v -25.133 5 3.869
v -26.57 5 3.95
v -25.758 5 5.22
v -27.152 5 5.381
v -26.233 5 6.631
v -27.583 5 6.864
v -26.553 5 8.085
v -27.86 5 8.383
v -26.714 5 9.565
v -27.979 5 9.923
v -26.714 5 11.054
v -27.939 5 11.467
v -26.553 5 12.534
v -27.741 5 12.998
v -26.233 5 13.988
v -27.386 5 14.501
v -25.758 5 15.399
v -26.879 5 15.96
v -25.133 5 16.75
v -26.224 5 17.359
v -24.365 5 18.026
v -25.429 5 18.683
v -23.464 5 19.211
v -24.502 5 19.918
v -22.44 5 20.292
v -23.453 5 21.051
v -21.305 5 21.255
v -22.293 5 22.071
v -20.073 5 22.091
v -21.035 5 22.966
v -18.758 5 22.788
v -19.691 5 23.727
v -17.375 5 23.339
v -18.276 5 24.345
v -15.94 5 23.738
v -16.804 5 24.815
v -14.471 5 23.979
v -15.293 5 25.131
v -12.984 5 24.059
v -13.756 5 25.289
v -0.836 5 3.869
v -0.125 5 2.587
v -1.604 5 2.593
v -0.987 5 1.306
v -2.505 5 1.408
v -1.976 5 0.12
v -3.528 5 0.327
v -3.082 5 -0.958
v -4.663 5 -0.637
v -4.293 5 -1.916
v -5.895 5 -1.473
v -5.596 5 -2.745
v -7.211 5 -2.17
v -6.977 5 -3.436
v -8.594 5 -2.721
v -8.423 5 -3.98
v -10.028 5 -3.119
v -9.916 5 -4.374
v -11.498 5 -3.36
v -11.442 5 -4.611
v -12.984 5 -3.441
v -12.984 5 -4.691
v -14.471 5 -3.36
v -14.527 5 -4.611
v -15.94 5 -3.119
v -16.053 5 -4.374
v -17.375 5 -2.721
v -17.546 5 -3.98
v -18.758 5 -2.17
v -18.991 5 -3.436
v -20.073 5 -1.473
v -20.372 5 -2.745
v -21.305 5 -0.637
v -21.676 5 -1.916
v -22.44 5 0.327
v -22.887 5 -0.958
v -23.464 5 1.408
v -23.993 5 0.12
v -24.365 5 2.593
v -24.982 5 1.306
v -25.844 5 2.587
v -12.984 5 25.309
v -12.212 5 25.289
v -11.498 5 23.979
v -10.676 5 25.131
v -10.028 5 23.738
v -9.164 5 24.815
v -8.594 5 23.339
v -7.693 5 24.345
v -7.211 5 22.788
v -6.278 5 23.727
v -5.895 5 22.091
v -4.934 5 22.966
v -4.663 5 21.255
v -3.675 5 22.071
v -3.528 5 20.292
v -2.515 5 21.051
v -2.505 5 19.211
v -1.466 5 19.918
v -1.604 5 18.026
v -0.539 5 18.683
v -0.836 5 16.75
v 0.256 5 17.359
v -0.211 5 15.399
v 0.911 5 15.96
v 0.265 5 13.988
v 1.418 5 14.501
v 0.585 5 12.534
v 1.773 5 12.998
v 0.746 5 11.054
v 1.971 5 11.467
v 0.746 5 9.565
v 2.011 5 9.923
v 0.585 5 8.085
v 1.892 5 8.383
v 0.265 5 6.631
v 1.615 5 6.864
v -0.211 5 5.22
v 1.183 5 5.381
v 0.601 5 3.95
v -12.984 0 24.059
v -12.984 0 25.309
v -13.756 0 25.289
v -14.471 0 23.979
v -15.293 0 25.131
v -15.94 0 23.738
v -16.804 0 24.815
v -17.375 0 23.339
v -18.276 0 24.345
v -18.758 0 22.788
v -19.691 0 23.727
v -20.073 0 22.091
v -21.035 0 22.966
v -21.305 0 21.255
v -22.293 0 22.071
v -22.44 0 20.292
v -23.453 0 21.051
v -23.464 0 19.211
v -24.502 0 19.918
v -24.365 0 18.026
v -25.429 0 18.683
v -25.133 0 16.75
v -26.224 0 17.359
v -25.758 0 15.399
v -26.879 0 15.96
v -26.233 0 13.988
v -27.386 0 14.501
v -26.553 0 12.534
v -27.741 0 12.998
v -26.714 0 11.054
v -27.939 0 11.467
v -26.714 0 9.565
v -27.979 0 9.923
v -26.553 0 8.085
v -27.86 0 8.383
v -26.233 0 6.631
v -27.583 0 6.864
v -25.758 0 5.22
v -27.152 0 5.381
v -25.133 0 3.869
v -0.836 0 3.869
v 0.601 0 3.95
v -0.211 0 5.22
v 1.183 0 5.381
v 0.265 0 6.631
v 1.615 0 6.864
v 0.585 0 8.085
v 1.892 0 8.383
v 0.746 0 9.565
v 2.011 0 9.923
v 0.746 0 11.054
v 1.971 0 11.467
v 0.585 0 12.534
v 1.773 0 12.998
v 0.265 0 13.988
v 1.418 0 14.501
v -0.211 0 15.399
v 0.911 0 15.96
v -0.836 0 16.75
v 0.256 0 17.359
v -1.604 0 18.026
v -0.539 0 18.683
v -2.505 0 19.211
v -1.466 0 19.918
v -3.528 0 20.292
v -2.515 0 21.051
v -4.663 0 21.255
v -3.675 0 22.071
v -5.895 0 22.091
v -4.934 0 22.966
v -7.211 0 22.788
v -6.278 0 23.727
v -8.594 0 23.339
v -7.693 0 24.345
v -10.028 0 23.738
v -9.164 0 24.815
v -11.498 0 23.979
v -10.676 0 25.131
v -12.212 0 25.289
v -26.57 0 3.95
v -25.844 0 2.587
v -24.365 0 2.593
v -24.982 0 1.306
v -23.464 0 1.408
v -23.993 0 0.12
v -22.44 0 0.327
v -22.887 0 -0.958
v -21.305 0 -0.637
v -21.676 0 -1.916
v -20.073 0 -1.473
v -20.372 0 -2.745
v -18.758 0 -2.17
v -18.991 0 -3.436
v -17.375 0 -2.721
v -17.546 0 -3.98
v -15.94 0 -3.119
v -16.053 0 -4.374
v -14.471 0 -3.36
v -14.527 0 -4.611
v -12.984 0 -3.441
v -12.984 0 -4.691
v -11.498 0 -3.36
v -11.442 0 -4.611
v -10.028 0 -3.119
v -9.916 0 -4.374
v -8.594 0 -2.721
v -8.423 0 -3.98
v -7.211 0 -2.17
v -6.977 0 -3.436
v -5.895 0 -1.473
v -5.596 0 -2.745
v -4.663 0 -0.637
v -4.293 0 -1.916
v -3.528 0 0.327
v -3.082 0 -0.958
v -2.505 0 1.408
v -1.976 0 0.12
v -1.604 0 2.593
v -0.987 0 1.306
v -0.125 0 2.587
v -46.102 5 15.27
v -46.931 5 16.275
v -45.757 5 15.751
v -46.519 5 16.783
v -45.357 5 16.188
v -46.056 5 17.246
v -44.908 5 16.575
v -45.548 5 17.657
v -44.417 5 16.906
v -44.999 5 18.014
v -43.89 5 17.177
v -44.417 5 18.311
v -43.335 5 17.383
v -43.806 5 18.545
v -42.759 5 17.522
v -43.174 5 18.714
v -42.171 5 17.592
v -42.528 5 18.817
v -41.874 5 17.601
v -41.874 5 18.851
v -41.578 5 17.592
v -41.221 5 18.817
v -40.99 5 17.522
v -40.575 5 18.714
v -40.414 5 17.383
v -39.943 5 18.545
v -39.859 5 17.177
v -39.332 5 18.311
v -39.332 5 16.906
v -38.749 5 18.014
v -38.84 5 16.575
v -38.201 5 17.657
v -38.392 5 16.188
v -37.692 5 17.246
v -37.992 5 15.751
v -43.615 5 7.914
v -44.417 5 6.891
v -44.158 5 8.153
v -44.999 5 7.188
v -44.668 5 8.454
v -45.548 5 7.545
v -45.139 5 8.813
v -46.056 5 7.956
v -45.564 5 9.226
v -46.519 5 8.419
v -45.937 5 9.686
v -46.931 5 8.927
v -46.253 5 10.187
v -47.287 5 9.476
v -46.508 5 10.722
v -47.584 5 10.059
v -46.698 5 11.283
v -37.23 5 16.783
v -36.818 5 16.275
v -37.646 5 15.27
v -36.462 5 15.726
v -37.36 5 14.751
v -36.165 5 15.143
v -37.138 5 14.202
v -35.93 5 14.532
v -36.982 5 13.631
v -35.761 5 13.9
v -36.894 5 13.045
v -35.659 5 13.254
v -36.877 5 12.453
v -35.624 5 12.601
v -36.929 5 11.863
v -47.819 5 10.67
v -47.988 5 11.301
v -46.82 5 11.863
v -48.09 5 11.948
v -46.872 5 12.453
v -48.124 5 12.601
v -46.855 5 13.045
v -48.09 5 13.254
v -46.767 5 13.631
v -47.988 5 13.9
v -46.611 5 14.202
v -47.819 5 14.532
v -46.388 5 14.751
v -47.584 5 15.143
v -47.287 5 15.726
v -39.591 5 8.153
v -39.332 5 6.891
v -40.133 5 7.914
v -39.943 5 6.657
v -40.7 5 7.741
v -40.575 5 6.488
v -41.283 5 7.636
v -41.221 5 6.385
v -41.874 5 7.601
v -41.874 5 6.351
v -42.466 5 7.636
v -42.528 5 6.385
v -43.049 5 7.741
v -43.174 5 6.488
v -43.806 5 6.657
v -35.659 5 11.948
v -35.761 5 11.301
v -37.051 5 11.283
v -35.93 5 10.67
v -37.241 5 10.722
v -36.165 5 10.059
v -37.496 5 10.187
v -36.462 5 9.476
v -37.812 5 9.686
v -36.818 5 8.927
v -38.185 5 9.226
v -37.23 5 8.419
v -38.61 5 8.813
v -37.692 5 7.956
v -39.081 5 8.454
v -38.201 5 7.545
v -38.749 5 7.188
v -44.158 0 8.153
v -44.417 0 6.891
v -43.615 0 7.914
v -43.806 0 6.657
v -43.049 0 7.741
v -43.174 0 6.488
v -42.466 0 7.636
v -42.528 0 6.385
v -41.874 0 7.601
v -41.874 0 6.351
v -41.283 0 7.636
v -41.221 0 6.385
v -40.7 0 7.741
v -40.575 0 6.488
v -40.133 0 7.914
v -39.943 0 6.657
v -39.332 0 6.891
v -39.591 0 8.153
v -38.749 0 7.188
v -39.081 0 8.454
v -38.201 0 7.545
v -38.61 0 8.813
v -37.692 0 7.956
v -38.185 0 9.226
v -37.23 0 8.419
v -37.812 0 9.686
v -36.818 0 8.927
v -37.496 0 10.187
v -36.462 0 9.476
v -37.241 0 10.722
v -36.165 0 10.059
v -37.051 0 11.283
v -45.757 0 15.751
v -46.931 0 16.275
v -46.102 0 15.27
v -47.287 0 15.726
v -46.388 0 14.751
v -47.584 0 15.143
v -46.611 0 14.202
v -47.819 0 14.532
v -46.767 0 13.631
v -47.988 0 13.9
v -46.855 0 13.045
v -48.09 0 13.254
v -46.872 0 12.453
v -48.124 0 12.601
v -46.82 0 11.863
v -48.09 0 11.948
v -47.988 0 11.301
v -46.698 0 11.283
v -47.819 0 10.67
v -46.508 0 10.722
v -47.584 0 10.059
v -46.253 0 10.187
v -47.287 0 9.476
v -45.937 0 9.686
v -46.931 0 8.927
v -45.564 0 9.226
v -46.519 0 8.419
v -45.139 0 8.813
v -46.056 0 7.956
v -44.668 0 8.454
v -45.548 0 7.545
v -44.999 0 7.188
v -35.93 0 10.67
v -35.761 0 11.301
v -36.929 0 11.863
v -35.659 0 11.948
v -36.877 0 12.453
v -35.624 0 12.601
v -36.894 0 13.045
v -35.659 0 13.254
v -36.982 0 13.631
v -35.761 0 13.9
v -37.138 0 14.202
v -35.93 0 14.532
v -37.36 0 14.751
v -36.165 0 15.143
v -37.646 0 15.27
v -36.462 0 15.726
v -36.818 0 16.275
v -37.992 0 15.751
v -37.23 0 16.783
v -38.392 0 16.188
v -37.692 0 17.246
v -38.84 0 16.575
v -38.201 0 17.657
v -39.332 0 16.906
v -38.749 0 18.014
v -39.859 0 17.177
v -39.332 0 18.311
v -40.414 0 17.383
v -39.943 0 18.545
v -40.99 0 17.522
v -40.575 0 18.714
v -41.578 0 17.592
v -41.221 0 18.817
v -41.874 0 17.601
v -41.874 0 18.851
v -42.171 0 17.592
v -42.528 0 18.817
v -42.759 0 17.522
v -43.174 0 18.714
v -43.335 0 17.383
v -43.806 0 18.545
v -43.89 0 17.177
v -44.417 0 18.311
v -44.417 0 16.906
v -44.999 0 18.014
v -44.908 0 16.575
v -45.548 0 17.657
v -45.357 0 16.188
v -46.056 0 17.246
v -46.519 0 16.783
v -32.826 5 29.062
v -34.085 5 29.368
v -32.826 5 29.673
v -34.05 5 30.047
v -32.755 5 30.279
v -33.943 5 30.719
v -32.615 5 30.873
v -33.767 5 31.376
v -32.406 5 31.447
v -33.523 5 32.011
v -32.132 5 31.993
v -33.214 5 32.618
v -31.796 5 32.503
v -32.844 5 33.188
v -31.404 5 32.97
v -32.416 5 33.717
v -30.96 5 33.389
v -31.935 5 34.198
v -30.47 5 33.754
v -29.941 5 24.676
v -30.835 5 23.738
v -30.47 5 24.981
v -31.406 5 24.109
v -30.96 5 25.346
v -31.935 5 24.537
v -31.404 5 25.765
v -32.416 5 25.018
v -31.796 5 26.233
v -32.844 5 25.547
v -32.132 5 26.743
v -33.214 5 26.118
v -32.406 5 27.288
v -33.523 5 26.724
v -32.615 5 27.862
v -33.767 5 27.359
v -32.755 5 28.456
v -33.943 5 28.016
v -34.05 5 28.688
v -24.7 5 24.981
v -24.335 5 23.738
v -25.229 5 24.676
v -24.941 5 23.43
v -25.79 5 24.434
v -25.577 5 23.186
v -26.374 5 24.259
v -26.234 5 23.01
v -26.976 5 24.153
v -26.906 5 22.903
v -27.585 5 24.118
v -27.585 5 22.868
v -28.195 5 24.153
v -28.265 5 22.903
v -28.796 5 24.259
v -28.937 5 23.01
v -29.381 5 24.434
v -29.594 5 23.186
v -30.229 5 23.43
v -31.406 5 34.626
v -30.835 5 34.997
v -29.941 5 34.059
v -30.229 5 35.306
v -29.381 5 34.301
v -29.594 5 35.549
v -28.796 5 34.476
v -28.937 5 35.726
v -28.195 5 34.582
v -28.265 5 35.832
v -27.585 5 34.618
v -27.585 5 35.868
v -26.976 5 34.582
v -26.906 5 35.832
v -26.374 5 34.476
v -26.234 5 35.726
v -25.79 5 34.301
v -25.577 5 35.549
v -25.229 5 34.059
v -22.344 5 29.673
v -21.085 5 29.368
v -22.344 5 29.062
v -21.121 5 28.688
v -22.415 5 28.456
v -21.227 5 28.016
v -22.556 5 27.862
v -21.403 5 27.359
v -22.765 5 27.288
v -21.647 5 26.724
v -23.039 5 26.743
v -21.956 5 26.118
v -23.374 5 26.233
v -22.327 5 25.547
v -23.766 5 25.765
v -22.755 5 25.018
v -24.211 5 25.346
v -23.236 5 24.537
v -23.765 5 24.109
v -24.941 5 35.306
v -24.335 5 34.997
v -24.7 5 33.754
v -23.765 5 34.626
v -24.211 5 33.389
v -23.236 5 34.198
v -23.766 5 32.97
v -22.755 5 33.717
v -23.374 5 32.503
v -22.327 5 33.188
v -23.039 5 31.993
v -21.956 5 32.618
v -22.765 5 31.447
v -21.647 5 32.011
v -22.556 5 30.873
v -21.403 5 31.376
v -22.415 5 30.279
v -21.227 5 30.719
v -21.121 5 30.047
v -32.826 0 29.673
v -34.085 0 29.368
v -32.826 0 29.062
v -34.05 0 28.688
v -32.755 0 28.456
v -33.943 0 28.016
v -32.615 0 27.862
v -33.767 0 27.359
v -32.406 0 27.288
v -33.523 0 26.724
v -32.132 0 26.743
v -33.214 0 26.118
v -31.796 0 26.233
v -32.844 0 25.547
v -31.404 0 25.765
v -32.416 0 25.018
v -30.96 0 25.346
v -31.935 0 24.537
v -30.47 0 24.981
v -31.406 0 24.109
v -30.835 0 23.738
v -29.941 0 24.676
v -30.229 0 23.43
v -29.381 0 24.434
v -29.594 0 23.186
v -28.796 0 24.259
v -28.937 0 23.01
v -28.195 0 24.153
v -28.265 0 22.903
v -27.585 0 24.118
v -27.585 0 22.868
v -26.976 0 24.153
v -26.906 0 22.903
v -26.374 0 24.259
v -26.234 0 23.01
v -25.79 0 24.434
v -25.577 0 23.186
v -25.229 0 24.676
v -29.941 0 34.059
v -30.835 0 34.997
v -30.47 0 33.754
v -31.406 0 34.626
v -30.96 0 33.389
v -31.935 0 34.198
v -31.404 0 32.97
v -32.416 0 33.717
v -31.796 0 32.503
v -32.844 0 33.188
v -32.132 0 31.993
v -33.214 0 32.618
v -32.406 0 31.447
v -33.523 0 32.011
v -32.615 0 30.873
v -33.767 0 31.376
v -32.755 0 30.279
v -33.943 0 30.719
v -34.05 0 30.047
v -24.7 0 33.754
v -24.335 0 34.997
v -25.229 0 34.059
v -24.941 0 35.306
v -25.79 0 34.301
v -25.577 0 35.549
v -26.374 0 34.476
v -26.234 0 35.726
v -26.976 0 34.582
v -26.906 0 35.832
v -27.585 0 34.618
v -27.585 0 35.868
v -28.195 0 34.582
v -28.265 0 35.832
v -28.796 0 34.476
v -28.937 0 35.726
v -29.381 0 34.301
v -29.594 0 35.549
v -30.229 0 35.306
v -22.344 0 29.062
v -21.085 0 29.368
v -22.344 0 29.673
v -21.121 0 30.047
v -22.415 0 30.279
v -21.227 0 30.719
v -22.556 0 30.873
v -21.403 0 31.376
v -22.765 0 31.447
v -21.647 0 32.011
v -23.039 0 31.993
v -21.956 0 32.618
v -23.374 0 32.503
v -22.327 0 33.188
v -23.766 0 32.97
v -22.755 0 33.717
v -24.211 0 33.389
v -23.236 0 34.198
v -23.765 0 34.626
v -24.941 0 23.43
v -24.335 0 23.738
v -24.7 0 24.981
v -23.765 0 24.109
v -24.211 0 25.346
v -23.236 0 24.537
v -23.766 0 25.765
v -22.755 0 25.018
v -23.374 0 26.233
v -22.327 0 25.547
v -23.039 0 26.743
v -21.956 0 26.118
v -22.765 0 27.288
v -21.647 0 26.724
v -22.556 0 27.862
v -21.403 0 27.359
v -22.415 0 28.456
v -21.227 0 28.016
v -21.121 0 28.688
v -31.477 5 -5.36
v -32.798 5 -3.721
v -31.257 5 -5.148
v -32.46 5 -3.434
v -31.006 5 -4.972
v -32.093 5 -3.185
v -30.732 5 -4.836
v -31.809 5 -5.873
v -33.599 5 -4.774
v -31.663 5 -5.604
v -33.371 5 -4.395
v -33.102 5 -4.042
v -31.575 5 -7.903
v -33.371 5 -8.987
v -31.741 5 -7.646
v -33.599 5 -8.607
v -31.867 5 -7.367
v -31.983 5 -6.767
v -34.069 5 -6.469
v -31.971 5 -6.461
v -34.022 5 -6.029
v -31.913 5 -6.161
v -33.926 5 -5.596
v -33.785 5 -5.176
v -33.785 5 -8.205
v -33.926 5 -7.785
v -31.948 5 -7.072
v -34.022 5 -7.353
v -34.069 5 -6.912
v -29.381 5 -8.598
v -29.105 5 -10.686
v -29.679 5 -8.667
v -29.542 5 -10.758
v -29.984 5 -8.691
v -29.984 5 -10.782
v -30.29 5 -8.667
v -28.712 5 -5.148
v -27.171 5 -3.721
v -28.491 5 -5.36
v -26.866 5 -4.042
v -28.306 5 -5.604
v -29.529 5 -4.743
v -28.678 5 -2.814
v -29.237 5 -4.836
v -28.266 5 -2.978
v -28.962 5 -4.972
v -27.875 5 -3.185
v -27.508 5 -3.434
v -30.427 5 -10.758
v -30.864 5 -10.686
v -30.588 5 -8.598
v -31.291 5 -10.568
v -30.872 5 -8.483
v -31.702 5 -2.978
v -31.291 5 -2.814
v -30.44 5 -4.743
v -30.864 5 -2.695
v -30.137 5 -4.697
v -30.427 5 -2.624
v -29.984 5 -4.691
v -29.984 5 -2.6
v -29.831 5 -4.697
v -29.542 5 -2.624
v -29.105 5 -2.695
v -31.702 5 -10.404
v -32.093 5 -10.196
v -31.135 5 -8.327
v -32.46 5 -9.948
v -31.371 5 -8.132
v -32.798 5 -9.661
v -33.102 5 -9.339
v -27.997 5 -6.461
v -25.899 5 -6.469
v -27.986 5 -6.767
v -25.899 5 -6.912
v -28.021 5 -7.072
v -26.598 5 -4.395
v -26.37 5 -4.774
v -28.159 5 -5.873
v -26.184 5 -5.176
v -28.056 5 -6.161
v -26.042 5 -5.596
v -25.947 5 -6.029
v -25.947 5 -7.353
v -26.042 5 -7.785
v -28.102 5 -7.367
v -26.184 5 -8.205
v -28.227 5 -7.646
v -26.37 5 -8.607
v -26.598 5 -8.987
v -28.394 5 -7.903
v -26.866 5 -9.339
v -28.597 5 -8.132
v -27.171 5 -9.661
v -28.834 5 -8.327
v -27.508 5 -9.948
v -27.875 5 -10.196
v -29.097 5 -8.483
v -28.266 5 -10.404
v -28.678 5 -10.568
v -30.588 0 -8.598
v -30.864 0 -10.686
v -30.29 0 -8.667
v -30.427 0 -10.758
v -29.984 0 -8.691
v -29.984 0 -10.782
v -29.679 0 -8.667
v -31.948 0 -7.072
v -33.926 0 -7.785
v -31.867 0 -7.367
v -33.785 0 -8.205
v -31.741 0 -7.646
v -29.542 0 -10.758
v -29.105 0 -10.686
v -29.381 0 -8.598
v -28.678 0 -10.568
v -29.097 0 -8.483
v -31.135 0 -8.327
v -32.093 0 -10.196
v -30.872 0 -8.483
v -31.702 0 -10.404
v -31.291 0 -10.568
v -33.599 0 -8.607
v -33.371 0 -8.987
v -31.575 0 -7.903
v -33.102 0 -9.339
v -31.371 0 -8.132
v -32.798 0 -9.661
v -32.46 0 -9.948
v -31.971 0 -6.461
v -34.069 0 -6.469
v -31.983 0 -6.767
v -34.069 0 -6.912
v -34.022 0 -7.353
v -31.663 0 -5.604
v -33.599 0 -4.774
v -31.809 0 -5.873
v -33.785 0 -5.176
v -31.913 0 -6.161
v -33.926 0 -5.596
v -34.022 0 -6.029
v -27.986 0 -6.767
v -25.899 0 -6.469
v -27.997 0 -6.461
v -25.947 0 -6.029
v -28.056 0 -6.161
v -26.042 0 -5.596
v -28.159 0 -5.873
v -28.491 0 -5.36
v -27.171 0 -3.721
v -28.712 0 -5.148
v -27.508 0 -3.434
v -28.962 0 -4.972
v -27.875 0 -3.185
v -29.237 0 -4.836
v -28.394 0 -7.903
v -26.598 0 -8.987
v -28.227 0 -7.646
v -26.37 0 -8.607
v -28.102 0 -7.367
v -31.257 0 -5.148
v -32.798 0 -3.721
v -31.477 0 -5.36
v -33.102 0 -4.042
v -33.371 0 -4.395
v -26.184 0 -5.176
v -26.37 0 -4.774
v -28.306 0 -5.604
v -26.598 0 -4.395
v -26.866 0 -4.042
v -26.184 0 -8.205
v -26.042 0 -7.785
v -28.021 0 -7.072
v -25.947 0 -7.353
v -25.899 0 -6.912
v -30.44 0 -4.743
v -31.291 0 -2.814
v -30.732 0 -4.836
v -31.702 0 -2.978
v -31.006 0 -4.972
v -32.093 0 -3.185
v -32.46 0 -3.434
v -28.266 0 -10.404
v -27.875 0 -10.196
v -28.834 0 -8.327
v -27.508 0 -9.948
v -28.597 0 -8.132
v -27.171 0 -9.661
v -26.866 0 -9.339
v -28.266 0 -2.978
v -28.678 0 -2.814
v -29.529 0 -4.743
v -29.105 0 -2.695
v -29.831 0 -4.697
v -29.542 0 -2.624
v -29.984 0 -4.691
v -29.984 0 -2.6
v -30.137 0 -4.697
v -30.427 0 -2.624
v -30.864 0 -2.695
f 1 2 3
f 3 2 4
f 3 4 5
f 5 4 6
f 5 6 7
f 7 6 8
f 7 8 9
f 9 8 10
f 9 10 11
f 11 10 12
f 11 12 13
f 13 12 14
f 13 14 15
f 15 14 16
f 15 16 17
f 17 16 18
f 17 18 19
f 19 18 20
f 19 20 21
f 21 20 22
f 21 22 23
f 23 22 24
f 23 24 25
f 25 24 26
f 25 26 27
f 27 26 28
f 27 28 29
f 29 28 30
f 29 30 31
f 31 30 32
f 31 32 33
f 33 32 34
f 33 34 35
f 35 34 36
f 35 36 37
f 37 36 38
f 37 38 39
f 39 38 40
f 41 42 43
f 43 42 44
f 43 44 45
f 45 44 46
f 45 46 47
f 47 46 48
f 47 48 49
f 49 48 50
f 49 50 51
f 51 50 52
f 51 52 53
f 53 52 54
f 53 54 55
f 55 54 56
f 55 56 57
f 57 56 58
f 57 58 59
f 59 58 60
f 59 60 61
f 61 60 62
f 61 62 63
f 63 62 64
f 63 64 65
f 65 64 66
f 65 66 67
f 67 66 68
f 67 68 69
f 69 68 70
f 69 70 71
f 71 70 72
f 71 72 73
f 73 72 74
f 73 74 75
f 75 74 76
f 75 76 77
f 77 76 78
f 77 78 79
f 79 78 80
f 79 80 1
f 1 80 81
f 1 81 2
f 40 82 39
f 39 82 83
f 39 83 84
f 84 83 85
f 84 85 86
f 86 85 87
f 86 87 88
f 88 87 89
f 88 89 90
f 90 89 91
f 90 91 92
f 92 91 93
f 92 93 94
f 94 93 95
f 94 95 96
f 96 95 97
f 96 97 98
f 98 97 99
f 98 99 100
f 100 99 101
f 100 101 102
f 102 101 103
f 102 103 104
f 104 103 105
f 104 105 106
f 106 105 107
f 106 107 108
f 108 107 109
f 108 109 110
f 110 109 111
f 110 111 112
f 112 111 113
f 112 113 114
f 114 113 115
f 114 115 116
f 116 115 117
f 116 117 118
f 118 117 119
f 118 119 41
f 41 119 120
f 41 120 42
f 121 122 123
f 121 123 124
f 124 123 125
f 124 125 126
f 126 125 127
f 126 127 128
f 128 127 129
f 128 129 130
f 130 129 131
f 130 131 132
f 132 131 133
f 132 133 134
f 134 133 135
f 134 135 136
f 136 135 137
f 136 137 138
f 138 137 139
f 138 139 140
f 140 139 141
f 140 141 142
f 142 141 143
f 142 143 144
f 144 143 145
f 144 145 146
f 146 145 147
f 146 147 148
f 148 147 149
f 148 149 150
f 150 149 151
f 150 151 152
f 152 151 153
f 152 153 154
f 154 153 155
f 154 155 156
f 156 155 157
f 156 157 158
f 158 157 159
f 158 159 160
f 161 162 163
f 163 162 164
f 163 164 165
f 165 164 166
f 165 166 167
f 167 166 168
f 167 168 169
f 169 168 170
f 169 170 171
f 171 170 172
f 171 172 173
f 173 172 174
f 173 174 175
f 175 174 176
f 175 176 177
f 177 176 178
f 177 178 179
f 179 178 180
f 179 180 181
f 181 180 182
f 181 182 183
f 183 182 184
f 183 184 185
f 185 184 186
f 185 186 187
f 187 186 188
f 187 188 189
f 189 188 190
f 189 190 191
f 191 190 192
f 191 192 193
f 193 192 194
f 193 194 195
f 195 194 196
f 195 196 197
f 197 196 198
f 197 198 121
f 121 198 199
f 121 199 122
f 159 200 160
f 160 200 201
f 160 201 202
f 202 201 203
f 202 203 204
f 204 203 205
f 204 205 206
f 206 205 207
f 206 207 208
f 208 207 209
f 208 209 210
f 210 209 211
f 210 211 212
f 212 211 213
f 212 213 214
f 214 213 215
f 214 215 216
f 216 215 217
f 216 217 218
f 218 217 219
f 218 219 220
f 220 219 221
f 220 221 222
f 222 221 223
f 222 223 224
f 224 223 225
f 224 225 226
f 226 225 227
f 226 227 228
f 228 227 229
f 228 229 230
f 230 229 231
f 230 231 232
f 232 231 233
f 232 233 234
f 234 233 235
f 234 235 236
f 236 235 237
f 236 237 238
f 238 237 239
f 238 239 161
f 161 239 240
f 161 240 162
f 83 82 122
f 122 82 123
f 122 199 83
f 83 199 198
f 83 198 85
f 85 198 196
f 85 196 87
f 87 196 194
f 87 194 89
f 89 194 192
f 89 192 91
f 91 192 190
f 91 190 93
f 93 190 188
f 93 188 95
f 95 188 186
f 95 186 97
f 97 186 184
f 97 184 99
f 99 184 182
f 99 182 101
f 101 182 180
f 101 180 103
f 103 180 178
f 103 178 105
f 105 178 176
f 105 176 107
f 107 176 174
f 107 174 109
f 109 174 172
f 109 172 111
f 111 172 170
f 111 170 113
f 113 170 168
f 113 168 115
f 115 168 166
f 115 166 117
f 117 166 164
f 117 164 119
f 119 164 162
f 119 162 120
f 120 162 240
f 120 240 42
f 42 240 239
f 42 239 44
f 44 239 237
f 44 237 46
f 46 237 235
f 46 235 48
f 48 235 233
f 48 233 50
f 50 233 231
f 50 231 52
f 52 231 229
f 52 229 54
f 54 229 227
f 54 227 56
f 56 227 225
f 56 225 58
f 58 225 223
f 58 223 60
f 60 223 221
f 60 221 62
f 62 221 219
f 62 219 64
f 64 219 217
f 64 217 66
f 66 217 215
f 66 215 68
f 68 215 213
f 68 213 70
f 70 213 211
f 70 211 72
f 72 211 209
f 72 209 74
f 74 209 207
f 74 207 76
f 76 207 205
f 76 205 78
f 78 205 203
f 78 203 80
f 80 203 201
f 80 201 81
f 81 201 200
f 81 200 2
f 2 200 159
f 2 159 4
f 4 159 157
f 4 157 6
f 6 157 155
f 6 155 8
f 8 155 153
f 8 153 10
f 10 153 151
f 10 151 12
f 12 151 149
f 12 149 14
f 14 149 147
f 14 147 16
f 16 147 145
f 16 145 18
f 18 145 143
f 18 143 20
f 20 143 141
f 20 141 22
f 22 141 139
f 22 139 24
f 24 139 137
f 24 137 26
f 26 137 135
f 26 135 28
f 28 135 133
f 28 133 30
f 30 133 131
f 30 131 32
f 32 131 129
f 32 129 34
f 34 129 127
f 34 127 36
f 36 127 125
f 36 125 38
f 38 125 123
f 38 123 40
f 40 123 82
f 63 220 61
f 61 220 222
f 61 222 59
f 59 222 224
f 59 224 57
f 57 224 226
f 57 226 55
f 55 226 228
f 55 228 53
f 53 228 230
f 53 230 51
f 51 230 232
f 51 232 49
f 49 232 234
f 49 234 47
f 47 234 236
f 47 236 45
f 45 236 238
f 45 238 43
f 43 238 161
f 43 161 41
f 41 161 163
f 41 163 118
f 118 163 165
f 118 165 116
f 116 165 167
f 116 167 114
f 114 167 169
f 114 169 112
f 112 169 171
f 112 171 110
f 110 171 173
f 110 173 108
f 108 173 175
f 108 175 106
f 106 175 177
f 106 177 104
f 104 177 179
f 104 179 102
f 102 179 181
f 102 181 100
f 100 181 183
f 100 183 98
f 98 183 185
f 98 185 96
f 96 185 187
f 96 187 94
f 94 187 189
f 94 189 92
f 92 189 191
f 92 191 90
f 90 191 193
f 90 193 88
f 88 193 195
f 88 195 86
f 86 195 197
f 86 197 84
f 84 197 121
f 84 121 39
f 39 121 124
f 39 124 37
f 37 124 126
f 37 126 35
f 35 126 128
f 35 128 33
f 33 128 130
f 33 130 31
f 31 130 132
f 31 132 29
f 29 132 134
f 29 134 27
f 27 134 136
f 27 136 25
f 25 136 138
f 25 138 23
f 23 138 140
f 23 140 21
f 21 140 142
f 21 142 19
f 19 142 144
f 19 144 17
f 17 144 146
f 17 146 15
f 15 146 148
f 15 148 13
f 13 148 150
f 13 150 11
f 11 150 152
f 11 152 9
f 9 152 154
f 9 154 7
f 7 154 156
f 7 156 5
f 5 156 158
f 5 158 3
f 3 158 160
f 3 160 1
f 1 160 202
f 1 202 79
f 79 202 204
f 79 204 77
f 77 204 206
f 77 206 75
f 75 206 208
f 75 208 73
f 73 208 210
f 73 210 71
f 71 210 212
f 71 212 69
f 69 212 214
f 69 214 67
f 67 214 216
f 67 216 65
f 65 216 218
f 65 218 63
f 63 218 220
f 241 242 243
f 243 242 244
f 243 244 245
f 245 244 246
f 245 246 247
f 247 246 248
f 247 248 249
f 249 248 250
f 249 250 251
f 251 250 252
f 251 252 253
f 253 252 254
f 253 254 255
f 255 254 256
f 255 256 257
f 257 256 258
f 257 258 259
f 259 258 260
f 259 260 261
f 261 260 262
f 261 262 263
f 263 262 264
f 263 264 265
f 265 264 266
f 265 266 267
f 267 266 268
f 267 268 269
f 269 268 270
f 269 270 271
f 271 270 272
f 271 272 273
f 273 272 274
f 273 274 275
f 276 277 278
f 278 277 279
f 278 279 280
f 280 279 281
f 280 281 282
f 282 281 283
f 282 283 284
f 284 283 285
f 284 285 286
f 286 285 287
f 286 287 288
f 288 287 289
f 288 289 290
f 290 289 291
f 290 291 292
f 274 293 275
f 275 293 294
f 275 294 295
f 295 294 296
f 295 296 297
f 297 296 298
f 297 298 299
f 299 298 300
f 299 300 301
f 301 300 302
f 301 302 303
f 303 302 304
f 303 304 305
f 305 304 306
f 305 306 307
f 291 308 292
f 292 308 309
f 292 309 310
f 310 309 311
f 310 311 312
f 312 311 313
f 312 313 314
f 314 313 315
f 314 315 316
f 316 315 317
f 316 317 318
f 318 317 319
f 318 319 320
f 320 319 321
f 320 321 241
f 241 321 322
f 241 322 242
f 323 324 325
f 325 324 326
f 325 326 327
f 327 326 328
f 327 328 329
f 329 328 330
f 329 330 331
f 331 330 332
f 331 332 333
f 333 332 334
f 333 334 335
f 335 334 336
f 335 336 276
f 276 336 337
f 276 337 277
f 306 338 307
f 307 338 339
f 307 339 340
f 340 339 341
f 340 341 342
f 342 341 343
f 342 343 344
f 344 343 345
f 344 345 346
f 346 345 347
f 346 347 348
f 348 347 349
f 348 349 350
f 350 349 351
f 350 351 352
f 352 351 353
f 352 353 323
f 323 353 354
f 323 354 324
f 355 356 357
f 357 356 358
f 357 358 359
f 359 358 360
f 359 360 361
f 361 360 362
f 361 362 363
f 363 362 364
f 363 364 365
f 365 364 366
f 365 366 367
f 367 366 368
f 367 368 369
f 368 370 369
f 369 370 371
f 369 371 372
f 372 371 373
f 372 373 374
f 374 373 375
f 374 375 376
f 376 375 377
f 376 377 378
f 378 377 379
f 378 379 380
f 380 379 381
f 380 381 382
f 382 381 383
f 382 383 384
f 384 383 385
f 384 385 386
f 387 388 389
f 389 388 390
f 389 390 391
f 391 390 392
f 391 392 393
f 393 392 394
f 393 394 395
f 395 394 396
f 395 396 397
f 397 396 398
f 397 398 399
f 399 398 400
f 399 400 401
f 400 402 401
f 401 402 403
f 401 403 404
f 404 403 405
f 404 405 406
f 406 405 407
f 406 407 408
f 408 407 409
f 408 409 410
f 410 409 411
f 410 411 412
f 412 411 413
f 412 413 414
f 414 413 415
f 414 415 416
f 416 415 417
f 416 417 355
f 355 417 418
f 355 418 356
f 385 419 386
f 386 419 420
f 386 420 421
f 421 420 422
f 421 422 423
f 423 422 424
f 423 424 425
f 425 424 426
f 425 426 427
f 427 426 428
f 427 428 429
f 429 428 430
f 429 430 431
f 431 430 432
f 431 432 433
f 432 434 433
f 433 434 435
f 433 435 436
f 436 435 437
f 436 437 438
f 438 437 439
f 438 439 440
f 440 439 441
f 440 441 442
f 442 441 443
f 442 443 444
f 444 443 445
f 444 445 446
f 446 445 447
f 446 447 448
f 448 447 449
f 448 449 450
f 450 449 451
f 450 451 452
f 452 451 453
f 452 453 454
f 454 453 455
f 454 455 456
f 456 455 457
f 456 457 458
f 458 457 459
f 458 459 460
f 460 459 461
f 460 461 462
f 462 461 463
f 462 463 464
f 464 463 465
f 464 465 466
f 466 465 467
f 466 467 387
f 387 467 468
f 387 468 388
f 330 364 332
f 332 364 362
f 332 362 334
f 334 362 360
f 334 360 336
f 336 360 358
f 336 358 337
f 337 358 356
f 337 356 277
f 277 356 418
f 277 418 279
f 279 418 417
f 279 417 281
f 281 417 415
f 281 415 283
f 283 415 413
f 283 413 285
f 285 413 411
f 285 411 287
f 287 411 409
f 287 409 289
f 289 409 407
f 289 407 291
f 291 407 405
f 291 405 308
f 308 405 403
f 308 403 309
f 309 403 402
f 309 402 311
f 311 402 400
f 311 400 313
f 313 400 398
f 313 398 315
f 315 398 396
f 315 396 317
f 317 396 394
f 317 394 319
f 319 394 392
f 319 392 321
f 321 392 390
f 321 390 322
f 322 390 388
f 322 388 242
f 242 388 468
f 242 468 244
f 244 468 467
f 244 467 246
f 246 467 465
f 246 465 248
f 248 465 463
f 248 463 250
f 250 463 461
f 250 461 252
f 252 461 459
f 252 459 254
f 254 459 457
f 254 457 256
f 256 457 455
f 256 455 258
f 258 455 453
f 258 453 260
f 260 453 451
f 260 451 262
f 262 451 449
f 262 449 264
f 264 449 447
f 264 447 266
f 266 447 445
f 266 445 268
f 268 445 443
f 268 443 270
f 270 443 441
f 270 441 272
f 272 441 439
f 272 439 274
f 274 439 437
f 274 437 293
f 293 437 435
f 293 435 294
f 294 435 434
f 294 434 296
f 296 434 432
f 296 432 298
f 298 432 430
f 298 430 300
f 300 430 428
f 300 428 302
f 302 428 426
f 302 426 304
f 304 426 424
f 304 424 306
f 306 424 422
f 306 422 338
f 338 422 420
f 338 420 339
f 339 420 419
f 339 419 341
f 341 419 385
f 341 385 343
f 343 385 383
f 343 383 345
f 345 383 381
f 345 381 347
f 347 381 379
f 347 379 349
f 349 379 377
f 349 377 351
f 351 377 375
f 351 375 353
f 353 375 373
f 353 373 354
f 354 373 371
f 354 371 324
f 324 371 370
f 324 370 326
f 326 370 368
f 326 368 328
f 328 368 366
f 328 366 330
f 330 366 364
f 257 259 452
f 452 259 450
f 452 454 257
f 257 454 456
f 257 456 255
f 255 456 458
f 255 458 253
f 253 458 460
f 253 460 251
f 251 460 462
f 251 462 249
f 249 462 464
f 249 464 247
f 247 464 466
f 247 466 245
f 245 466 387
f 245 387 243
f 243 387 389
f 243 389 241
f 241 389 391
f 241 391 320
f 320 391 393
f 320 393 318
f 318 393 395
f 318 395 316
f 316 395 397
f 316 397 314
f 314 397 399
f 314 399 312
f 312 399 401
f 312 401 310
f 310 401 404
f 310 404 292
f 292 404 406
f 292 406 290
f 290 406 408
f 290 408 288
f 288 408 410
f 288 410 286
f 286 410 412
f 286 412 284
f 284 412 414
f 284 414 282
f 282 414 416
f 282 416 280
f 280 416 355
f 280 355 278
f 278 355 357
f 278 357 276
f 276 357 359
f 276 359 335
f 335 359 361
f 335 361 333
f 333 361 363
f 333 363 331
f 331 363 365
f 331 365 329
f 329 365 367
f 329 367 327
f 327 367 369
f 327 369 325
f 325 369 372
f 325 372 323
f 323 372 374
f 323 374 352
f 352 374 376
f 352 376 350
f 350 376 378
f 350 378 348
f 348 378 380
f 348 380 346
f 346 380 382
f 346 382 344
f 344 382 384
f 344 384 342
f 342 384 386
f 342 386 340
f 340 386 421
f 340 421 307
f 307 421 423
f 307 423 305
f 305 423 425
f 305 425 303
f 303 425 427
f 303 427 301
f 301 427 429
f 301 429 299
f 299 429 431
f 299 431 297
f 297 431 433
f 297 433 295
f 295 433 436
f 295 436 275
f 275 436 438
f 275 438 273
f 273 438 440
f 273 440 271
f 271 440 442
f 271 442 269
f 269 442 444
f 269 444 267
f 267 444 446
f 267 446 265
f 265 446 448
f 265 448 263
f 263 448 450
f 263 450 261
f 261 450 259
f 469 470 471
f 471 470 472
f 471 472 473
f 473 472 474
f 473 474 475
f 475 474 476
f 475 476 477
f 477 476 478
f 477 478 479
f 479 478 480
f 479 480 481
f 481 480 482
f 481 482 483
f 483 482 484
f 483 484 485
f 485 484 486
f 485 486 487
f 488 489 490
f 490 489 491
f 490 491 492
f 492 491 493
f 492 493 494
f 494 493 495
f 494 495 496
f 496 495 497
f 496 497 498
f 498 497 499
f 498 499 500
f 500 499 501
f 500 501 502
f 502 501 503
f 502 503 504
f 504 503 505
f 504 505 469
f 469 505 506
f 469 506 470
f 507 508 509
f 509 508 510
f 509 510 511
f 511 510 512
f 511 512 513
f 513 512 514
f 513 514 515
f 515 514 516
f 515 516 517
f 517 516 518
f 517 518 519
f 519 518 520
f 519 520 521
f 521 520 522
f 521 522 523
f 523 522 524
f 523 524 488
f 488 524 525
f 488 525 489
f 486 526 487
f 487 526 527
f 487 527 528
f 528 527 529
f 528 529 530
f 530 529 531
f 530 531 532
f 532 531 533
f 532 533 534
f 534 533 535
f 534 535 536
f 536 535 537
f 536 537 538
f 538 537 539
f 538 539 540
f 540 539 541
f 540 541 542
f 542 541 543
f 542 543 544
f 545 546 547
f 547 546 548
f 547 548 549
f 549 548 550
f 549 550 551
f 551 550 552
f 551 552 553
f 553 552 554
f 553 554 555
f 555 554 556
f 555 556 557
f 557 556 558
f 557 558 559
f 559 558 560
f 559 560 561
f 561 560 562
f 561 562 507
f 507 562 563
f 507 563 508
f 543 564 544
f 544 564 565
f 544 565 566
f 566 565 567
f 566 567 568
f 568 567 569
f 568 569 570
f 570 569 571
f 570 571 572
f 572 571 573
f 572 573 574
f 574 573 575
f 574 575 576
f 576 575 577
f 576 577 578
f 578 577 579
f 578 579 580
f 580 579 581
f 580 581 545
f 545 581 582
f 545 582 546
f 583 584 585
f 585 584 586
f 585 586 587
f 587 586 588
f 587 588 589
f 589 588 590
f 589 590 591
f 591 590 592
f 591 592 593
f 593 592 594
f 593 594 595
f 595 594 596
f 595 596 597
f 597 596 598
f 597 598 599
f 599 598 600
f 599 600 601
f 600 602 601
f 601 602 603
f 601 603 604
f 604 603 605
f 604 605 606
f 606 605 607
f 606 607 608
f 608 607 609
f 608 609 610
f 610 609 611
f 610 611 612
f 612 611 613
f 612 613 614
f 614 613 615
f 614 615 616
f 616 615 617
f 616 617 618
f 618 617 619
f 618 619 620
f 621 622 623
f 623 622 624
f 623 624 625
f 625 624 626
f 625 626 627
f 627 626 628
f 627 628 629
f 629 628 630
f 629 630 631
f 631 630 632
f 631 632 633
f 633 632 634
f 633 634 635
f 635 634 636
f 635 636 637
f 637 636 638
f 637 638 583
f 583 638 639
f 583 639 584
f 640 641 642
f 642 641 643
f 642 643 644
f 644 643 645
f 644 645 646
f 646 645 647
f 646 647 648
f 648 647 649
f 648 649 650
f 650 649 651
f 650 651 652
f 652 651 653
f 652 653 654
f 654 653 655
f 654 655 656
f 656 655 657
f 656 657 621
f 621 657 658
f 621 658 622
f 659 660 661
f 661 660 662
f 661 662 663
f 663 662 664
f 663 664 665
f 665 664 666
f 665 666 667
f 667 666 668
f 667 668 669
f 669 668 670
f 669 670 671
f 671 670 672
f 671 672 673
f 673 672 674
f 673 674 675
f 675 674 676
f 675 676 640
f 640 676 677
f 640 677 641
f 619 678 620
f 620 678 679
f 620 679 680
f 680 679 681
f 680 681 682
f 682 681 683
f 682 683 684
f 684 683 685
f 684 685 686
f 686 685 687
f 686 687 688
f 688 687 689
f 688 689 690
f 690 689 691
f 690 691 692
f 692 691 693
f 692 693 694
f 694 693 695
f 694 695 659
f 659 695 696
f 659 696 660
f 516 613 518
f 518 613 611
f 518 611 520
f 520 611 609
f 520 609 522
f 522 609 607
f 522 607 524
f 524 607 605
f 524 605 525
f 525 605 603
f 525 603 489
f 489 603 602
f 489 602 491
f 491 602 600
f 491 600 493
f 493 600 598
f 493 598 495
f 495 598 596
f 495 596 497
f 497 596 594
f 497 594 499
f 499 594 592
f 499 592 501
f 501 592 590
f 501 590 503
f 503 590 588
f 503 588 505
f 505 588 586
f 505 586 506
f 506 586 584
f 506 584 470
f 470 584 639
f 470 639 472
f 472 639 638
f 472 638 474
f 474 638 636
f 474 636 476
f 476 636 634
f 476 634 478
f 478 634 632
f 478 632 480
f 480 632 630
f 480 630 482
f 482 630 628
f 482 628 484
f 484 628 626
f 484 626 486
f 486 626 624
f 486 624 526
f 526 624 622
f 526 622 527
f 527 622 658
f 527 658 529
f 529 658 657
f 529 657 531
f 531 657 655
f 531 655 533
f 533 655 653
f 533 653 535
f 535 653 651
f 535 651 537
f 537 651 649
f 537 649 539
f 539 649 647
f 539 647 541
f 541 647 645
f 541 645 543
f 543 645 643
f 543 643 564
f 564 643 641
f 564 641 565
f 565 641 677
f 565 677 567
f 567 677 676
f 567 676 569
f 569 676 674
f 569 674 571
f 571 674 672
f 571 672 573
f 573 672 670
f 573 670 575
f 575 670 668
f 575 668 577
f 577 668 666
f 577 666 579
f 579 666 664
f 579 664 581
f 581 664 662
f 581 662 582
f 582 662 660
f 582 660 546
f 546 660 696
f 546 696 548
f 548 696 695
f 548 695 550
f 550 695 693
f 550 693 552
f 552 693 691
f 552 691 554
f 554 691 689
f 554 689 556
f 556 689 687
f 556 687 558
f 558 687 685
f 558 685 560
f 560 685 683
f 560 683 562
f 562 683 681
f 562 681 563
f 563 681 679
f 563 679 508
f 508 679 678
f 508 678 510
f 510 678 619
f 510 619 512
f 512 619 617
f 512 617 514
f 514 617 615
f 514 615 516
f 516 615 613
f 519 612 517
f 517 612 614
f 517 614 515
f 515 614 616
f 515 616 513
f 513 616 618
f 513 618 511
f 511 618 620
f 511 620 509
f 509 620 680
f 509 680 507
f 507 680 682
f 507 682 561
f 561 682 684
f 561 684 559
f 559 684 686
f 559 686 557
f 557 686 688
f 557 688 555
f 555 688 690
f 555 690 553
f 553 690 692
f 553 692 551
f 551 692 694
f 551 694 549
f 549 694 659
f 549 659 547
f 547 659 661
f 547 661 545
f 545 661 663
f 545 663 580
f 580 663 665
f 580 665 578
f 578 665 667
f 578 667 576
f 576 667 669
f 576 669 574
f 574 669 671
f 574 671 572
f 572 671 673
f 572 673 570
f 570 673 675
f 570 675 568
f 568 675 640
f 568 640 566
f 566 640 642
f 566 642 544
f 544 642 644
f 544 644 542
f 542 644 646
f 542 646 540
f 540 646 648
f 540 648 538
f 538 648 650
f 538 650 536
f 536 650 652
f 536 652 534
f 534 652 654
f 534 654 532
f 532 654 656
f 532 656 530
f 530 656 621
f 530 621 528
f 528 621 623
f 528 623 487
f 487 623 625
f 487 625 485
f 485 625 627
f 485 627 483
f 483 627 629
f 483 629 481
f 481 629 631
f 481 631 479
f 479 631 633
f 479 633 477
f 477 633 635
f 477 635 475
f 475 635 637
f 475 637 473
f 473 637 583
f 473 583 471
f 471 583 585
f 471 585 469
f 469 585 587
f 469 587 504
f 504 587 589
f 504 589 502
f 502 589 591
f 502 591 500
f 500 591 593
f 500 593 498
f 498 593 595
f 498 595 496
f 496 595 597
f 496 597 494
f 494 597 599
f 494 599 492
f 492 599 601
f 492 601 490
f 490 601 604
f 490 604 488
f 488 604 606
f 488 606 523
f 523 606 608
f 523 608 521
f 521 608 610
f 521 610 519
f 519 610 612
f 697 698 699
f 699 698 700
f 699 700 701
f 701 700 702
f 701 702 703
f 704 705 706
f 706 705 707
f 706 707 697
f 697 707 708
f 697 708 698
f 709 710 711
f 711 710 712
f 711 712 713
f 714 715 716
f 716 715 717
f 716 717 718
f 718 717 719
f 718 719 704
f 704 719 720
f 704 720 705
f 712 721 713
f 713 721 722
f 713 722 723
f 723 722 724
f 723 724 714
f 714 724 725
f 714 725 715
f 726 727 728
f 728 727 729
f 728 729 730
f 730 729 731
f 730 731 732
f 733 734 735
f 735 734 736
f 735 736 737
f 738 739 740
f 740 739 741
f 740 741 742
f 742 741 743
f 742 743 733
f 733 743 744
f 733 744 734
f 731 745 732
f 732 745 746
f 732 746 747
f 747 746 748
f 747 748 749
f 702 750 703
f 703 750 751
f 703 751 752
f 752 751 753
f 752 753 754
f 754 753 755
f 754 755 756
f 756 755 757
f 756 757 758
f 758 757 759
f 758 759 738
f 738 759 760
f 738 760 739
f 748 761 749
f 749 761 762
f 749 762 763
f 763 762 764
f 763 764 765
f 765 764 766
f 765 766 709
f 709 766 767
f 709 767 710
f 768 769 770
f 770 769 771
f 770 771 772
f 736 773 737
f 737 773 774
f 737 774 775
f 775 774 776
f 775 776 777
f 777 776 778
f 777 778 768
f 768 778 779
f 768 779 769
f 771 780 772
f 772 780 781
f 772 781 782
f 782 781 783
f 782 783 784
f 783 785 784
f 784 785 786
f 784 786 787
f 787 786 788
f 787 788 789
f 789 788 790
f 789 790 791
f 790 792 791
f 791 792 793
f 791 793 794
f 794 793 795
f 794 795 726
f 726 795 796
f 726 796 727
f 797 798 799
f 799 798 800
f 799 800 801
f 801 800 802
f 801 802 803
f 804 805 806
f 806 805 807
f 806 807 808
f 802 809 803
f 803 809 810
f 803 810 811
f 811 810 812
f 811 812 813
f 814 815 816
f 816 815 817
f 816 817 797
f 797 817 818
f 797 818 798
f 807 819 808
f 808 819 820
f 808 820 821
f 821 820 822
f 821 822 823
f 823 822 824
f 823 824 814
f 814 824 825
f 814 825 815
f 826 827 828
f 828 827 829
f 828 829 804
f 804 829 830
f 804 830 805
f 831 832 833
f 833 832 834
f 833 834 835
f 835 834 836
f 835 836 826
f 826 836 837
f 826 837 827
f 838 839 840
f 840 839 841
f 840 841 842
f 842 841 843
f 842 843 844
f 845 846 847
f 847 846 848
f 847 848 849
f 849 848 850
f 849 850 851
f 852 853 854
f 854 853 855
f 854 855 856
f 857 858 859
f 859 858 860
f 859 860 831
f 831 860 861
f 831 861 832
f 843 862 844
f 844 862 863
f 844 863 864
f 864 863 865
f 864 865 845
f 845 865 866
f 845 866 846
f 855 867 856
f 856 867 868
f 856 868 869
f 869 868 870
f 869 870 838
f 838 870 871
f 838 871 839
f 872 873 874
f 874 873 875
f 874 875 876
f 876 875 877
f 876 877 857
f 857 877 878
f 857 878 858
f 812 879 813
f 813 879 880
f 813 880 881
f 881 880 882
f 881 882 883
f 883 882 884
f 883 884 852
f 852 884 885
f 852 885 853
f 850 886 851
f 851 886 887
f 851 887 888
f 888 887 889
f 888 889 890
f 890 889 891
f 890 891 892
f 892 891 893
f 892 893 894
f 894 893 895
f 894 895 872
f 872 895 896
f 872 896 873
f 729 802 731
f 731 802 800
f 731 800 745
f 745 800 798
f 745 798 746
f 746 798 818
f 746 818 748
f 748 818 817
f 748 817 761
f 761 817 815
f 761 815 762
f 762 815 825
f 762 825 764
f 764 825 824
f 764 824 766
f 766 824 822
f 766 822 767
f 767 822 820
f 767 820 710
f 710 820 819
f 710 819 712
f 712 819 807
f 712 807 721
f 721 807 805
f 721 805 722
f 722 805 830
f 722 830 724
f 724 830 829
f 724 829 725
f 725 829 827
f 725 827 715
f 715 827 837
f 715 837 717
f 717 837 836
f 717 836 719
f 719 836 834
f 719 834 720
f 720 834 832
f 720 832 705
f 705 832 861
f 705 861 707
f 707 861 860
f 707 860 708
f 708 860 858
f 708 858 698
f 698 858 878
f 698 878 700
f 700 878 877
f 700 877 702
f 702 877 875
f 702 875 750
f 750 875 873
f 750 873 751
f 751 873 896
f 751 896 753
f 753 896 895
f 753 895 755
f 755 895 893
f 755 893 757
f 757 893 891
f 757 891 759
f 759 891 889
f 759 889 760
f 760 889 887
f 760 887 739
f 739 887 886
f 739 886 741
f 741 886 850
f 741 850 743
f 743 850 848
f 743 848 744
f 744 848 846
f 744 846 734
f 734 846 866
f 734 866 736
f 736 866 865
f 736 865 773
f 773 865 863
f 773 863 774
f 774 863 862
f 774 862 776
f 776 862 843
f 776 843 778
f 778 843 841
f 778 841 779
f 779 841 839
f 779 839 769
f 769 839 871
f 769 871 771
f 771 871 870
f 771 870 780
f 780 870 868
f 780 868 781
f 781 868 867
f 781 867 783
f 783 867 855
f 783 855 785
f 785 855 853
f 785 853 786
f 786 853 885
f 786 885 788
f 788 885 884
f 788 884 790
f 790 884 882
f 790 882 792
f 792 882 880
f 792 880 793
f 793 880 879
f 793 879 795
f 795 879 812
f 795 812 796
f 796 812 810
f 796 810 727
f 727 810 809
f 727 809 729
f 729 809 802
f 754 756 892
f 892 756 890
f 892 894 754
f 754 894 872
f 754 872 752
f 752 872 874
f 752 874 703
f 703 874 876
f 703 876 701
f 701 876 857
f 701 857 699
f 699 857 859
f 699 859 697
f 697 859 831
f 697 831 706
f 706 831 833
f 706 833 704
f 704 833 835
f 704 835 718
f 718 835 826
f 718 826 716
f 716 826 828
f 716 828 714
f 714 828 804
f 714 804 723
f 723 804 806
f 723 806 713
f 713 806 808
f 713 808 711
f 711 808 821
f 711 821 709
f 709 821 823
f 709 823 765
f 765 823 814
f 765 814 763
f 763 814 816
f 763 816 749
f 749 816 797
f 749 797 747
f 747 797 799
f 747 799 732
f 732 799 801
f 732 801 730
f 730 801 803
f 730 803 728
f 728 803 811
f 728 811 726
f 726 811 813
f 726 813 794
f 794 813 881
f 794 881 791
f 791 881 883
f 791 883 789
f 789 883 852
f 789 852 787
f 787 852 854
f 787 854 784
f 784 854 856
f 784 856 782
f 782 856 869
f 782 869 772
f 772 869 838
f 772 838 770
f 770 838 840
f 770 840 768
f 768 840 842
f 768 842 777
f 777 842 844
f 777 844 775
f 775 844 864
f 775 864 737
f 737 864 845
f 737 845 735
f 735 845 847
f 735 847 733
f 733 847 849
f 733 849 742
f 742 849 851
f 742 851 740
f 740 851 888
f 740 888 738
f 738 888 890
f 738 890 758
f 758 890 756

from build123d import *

# Parameters (mm, degrees)
SKETCH_1_R        = 15
SKETCH_1_R_2      = 13.75
EXTRUDE_1_DEPTH   = 5
SKETCH_1_R_3      = 6.25
SKETCH_1_R_4      = 5
EXTRUDE_1_2_DEPTH = 5
SKETCH_1_R_5      = 4.09124723
SKETCH_1_R_6      = 2
EXTRUDE_1_3_DEPTH = 5
SKETCH_1_R_7      = 6.5
SKETCH_1_R_8      = 5.25
EXTRUDE_1_4_DEPTH = 5


with BuildPart() as part:
    # 草图1 → 凸台-拉伸1 (new body)
    with BuildSketch(Plane(origin=(0, 0, 0), x_dir=(1, 0, 0), z_dir=(0, 1, 0))):
        with Locations((-12.984231372, -10.309208812)):
            Circle(SKETCH_1_R)
        with Locations((-12.984231372, -10.309208812)):
            Circle(SKETCH_1_R_2, mode=Mode.SUBTRACT)
    extrude(amount=EXTRUDE_1_DEPTH)


with BuildPart() as body_2:
    # 草图1 → Extrude 1 2 (new body)
    with BuildSketch(Plane(origin=(0, 0, 0), x_dir=(1, 0, 0), z_dir=(0, 1, 0))):
        with Locations((-41.874421892, -12.600941392)):
            Circle(SKETCH_1_R_3)
        with Locations((-41.874421892, -12.600941392)):
            Circle(SKETCH_1_R_4, mode=Mode.SUBTRACT)
    extrude(amount=EXTRUDE_1_2_DEPTH)


with BuildPart() as body_3:
    # 草图1 → Extrude 1 3 (new body)
    with BuildSketch(Plane(origin=(0, 0, 0), x_dir=(1, 0, 0), z_dir=(0, 1, 0))):
        with Locations((-29.984231372, 6.690791188)):
            Circle(SKETCH_1_R_5)
        with Locations((-29.984231372, 6.690791188)):
            Circle(SKETCH_1_R_6, mode=Mode.SUBTRACT)
    extrude(amount=EXTRUDE_1_3_DEPTH)


with BuildPart() as body_4:
    # 草图1 → Extrude 1 4 (new body)
    with BuildSketch(Plane(origin=(0, 0, 0), x_dir=(1, 0, 0), z_dir=(0, 1, 0))):
        with Locations((-27.585195105, -29.367622216)):
            Circle(SKETCH_1_R_7)
        with Locations((-27.585195105, -29.367622216)):
            Circle(SKETCH_1_R_8, mode=Mode.SUBTRACT)
    extrude(amount=EXTRUDE_1_4_DEPTH)


solid = Compound([part.part, body_2.part, body_3.part, body_4.part])
